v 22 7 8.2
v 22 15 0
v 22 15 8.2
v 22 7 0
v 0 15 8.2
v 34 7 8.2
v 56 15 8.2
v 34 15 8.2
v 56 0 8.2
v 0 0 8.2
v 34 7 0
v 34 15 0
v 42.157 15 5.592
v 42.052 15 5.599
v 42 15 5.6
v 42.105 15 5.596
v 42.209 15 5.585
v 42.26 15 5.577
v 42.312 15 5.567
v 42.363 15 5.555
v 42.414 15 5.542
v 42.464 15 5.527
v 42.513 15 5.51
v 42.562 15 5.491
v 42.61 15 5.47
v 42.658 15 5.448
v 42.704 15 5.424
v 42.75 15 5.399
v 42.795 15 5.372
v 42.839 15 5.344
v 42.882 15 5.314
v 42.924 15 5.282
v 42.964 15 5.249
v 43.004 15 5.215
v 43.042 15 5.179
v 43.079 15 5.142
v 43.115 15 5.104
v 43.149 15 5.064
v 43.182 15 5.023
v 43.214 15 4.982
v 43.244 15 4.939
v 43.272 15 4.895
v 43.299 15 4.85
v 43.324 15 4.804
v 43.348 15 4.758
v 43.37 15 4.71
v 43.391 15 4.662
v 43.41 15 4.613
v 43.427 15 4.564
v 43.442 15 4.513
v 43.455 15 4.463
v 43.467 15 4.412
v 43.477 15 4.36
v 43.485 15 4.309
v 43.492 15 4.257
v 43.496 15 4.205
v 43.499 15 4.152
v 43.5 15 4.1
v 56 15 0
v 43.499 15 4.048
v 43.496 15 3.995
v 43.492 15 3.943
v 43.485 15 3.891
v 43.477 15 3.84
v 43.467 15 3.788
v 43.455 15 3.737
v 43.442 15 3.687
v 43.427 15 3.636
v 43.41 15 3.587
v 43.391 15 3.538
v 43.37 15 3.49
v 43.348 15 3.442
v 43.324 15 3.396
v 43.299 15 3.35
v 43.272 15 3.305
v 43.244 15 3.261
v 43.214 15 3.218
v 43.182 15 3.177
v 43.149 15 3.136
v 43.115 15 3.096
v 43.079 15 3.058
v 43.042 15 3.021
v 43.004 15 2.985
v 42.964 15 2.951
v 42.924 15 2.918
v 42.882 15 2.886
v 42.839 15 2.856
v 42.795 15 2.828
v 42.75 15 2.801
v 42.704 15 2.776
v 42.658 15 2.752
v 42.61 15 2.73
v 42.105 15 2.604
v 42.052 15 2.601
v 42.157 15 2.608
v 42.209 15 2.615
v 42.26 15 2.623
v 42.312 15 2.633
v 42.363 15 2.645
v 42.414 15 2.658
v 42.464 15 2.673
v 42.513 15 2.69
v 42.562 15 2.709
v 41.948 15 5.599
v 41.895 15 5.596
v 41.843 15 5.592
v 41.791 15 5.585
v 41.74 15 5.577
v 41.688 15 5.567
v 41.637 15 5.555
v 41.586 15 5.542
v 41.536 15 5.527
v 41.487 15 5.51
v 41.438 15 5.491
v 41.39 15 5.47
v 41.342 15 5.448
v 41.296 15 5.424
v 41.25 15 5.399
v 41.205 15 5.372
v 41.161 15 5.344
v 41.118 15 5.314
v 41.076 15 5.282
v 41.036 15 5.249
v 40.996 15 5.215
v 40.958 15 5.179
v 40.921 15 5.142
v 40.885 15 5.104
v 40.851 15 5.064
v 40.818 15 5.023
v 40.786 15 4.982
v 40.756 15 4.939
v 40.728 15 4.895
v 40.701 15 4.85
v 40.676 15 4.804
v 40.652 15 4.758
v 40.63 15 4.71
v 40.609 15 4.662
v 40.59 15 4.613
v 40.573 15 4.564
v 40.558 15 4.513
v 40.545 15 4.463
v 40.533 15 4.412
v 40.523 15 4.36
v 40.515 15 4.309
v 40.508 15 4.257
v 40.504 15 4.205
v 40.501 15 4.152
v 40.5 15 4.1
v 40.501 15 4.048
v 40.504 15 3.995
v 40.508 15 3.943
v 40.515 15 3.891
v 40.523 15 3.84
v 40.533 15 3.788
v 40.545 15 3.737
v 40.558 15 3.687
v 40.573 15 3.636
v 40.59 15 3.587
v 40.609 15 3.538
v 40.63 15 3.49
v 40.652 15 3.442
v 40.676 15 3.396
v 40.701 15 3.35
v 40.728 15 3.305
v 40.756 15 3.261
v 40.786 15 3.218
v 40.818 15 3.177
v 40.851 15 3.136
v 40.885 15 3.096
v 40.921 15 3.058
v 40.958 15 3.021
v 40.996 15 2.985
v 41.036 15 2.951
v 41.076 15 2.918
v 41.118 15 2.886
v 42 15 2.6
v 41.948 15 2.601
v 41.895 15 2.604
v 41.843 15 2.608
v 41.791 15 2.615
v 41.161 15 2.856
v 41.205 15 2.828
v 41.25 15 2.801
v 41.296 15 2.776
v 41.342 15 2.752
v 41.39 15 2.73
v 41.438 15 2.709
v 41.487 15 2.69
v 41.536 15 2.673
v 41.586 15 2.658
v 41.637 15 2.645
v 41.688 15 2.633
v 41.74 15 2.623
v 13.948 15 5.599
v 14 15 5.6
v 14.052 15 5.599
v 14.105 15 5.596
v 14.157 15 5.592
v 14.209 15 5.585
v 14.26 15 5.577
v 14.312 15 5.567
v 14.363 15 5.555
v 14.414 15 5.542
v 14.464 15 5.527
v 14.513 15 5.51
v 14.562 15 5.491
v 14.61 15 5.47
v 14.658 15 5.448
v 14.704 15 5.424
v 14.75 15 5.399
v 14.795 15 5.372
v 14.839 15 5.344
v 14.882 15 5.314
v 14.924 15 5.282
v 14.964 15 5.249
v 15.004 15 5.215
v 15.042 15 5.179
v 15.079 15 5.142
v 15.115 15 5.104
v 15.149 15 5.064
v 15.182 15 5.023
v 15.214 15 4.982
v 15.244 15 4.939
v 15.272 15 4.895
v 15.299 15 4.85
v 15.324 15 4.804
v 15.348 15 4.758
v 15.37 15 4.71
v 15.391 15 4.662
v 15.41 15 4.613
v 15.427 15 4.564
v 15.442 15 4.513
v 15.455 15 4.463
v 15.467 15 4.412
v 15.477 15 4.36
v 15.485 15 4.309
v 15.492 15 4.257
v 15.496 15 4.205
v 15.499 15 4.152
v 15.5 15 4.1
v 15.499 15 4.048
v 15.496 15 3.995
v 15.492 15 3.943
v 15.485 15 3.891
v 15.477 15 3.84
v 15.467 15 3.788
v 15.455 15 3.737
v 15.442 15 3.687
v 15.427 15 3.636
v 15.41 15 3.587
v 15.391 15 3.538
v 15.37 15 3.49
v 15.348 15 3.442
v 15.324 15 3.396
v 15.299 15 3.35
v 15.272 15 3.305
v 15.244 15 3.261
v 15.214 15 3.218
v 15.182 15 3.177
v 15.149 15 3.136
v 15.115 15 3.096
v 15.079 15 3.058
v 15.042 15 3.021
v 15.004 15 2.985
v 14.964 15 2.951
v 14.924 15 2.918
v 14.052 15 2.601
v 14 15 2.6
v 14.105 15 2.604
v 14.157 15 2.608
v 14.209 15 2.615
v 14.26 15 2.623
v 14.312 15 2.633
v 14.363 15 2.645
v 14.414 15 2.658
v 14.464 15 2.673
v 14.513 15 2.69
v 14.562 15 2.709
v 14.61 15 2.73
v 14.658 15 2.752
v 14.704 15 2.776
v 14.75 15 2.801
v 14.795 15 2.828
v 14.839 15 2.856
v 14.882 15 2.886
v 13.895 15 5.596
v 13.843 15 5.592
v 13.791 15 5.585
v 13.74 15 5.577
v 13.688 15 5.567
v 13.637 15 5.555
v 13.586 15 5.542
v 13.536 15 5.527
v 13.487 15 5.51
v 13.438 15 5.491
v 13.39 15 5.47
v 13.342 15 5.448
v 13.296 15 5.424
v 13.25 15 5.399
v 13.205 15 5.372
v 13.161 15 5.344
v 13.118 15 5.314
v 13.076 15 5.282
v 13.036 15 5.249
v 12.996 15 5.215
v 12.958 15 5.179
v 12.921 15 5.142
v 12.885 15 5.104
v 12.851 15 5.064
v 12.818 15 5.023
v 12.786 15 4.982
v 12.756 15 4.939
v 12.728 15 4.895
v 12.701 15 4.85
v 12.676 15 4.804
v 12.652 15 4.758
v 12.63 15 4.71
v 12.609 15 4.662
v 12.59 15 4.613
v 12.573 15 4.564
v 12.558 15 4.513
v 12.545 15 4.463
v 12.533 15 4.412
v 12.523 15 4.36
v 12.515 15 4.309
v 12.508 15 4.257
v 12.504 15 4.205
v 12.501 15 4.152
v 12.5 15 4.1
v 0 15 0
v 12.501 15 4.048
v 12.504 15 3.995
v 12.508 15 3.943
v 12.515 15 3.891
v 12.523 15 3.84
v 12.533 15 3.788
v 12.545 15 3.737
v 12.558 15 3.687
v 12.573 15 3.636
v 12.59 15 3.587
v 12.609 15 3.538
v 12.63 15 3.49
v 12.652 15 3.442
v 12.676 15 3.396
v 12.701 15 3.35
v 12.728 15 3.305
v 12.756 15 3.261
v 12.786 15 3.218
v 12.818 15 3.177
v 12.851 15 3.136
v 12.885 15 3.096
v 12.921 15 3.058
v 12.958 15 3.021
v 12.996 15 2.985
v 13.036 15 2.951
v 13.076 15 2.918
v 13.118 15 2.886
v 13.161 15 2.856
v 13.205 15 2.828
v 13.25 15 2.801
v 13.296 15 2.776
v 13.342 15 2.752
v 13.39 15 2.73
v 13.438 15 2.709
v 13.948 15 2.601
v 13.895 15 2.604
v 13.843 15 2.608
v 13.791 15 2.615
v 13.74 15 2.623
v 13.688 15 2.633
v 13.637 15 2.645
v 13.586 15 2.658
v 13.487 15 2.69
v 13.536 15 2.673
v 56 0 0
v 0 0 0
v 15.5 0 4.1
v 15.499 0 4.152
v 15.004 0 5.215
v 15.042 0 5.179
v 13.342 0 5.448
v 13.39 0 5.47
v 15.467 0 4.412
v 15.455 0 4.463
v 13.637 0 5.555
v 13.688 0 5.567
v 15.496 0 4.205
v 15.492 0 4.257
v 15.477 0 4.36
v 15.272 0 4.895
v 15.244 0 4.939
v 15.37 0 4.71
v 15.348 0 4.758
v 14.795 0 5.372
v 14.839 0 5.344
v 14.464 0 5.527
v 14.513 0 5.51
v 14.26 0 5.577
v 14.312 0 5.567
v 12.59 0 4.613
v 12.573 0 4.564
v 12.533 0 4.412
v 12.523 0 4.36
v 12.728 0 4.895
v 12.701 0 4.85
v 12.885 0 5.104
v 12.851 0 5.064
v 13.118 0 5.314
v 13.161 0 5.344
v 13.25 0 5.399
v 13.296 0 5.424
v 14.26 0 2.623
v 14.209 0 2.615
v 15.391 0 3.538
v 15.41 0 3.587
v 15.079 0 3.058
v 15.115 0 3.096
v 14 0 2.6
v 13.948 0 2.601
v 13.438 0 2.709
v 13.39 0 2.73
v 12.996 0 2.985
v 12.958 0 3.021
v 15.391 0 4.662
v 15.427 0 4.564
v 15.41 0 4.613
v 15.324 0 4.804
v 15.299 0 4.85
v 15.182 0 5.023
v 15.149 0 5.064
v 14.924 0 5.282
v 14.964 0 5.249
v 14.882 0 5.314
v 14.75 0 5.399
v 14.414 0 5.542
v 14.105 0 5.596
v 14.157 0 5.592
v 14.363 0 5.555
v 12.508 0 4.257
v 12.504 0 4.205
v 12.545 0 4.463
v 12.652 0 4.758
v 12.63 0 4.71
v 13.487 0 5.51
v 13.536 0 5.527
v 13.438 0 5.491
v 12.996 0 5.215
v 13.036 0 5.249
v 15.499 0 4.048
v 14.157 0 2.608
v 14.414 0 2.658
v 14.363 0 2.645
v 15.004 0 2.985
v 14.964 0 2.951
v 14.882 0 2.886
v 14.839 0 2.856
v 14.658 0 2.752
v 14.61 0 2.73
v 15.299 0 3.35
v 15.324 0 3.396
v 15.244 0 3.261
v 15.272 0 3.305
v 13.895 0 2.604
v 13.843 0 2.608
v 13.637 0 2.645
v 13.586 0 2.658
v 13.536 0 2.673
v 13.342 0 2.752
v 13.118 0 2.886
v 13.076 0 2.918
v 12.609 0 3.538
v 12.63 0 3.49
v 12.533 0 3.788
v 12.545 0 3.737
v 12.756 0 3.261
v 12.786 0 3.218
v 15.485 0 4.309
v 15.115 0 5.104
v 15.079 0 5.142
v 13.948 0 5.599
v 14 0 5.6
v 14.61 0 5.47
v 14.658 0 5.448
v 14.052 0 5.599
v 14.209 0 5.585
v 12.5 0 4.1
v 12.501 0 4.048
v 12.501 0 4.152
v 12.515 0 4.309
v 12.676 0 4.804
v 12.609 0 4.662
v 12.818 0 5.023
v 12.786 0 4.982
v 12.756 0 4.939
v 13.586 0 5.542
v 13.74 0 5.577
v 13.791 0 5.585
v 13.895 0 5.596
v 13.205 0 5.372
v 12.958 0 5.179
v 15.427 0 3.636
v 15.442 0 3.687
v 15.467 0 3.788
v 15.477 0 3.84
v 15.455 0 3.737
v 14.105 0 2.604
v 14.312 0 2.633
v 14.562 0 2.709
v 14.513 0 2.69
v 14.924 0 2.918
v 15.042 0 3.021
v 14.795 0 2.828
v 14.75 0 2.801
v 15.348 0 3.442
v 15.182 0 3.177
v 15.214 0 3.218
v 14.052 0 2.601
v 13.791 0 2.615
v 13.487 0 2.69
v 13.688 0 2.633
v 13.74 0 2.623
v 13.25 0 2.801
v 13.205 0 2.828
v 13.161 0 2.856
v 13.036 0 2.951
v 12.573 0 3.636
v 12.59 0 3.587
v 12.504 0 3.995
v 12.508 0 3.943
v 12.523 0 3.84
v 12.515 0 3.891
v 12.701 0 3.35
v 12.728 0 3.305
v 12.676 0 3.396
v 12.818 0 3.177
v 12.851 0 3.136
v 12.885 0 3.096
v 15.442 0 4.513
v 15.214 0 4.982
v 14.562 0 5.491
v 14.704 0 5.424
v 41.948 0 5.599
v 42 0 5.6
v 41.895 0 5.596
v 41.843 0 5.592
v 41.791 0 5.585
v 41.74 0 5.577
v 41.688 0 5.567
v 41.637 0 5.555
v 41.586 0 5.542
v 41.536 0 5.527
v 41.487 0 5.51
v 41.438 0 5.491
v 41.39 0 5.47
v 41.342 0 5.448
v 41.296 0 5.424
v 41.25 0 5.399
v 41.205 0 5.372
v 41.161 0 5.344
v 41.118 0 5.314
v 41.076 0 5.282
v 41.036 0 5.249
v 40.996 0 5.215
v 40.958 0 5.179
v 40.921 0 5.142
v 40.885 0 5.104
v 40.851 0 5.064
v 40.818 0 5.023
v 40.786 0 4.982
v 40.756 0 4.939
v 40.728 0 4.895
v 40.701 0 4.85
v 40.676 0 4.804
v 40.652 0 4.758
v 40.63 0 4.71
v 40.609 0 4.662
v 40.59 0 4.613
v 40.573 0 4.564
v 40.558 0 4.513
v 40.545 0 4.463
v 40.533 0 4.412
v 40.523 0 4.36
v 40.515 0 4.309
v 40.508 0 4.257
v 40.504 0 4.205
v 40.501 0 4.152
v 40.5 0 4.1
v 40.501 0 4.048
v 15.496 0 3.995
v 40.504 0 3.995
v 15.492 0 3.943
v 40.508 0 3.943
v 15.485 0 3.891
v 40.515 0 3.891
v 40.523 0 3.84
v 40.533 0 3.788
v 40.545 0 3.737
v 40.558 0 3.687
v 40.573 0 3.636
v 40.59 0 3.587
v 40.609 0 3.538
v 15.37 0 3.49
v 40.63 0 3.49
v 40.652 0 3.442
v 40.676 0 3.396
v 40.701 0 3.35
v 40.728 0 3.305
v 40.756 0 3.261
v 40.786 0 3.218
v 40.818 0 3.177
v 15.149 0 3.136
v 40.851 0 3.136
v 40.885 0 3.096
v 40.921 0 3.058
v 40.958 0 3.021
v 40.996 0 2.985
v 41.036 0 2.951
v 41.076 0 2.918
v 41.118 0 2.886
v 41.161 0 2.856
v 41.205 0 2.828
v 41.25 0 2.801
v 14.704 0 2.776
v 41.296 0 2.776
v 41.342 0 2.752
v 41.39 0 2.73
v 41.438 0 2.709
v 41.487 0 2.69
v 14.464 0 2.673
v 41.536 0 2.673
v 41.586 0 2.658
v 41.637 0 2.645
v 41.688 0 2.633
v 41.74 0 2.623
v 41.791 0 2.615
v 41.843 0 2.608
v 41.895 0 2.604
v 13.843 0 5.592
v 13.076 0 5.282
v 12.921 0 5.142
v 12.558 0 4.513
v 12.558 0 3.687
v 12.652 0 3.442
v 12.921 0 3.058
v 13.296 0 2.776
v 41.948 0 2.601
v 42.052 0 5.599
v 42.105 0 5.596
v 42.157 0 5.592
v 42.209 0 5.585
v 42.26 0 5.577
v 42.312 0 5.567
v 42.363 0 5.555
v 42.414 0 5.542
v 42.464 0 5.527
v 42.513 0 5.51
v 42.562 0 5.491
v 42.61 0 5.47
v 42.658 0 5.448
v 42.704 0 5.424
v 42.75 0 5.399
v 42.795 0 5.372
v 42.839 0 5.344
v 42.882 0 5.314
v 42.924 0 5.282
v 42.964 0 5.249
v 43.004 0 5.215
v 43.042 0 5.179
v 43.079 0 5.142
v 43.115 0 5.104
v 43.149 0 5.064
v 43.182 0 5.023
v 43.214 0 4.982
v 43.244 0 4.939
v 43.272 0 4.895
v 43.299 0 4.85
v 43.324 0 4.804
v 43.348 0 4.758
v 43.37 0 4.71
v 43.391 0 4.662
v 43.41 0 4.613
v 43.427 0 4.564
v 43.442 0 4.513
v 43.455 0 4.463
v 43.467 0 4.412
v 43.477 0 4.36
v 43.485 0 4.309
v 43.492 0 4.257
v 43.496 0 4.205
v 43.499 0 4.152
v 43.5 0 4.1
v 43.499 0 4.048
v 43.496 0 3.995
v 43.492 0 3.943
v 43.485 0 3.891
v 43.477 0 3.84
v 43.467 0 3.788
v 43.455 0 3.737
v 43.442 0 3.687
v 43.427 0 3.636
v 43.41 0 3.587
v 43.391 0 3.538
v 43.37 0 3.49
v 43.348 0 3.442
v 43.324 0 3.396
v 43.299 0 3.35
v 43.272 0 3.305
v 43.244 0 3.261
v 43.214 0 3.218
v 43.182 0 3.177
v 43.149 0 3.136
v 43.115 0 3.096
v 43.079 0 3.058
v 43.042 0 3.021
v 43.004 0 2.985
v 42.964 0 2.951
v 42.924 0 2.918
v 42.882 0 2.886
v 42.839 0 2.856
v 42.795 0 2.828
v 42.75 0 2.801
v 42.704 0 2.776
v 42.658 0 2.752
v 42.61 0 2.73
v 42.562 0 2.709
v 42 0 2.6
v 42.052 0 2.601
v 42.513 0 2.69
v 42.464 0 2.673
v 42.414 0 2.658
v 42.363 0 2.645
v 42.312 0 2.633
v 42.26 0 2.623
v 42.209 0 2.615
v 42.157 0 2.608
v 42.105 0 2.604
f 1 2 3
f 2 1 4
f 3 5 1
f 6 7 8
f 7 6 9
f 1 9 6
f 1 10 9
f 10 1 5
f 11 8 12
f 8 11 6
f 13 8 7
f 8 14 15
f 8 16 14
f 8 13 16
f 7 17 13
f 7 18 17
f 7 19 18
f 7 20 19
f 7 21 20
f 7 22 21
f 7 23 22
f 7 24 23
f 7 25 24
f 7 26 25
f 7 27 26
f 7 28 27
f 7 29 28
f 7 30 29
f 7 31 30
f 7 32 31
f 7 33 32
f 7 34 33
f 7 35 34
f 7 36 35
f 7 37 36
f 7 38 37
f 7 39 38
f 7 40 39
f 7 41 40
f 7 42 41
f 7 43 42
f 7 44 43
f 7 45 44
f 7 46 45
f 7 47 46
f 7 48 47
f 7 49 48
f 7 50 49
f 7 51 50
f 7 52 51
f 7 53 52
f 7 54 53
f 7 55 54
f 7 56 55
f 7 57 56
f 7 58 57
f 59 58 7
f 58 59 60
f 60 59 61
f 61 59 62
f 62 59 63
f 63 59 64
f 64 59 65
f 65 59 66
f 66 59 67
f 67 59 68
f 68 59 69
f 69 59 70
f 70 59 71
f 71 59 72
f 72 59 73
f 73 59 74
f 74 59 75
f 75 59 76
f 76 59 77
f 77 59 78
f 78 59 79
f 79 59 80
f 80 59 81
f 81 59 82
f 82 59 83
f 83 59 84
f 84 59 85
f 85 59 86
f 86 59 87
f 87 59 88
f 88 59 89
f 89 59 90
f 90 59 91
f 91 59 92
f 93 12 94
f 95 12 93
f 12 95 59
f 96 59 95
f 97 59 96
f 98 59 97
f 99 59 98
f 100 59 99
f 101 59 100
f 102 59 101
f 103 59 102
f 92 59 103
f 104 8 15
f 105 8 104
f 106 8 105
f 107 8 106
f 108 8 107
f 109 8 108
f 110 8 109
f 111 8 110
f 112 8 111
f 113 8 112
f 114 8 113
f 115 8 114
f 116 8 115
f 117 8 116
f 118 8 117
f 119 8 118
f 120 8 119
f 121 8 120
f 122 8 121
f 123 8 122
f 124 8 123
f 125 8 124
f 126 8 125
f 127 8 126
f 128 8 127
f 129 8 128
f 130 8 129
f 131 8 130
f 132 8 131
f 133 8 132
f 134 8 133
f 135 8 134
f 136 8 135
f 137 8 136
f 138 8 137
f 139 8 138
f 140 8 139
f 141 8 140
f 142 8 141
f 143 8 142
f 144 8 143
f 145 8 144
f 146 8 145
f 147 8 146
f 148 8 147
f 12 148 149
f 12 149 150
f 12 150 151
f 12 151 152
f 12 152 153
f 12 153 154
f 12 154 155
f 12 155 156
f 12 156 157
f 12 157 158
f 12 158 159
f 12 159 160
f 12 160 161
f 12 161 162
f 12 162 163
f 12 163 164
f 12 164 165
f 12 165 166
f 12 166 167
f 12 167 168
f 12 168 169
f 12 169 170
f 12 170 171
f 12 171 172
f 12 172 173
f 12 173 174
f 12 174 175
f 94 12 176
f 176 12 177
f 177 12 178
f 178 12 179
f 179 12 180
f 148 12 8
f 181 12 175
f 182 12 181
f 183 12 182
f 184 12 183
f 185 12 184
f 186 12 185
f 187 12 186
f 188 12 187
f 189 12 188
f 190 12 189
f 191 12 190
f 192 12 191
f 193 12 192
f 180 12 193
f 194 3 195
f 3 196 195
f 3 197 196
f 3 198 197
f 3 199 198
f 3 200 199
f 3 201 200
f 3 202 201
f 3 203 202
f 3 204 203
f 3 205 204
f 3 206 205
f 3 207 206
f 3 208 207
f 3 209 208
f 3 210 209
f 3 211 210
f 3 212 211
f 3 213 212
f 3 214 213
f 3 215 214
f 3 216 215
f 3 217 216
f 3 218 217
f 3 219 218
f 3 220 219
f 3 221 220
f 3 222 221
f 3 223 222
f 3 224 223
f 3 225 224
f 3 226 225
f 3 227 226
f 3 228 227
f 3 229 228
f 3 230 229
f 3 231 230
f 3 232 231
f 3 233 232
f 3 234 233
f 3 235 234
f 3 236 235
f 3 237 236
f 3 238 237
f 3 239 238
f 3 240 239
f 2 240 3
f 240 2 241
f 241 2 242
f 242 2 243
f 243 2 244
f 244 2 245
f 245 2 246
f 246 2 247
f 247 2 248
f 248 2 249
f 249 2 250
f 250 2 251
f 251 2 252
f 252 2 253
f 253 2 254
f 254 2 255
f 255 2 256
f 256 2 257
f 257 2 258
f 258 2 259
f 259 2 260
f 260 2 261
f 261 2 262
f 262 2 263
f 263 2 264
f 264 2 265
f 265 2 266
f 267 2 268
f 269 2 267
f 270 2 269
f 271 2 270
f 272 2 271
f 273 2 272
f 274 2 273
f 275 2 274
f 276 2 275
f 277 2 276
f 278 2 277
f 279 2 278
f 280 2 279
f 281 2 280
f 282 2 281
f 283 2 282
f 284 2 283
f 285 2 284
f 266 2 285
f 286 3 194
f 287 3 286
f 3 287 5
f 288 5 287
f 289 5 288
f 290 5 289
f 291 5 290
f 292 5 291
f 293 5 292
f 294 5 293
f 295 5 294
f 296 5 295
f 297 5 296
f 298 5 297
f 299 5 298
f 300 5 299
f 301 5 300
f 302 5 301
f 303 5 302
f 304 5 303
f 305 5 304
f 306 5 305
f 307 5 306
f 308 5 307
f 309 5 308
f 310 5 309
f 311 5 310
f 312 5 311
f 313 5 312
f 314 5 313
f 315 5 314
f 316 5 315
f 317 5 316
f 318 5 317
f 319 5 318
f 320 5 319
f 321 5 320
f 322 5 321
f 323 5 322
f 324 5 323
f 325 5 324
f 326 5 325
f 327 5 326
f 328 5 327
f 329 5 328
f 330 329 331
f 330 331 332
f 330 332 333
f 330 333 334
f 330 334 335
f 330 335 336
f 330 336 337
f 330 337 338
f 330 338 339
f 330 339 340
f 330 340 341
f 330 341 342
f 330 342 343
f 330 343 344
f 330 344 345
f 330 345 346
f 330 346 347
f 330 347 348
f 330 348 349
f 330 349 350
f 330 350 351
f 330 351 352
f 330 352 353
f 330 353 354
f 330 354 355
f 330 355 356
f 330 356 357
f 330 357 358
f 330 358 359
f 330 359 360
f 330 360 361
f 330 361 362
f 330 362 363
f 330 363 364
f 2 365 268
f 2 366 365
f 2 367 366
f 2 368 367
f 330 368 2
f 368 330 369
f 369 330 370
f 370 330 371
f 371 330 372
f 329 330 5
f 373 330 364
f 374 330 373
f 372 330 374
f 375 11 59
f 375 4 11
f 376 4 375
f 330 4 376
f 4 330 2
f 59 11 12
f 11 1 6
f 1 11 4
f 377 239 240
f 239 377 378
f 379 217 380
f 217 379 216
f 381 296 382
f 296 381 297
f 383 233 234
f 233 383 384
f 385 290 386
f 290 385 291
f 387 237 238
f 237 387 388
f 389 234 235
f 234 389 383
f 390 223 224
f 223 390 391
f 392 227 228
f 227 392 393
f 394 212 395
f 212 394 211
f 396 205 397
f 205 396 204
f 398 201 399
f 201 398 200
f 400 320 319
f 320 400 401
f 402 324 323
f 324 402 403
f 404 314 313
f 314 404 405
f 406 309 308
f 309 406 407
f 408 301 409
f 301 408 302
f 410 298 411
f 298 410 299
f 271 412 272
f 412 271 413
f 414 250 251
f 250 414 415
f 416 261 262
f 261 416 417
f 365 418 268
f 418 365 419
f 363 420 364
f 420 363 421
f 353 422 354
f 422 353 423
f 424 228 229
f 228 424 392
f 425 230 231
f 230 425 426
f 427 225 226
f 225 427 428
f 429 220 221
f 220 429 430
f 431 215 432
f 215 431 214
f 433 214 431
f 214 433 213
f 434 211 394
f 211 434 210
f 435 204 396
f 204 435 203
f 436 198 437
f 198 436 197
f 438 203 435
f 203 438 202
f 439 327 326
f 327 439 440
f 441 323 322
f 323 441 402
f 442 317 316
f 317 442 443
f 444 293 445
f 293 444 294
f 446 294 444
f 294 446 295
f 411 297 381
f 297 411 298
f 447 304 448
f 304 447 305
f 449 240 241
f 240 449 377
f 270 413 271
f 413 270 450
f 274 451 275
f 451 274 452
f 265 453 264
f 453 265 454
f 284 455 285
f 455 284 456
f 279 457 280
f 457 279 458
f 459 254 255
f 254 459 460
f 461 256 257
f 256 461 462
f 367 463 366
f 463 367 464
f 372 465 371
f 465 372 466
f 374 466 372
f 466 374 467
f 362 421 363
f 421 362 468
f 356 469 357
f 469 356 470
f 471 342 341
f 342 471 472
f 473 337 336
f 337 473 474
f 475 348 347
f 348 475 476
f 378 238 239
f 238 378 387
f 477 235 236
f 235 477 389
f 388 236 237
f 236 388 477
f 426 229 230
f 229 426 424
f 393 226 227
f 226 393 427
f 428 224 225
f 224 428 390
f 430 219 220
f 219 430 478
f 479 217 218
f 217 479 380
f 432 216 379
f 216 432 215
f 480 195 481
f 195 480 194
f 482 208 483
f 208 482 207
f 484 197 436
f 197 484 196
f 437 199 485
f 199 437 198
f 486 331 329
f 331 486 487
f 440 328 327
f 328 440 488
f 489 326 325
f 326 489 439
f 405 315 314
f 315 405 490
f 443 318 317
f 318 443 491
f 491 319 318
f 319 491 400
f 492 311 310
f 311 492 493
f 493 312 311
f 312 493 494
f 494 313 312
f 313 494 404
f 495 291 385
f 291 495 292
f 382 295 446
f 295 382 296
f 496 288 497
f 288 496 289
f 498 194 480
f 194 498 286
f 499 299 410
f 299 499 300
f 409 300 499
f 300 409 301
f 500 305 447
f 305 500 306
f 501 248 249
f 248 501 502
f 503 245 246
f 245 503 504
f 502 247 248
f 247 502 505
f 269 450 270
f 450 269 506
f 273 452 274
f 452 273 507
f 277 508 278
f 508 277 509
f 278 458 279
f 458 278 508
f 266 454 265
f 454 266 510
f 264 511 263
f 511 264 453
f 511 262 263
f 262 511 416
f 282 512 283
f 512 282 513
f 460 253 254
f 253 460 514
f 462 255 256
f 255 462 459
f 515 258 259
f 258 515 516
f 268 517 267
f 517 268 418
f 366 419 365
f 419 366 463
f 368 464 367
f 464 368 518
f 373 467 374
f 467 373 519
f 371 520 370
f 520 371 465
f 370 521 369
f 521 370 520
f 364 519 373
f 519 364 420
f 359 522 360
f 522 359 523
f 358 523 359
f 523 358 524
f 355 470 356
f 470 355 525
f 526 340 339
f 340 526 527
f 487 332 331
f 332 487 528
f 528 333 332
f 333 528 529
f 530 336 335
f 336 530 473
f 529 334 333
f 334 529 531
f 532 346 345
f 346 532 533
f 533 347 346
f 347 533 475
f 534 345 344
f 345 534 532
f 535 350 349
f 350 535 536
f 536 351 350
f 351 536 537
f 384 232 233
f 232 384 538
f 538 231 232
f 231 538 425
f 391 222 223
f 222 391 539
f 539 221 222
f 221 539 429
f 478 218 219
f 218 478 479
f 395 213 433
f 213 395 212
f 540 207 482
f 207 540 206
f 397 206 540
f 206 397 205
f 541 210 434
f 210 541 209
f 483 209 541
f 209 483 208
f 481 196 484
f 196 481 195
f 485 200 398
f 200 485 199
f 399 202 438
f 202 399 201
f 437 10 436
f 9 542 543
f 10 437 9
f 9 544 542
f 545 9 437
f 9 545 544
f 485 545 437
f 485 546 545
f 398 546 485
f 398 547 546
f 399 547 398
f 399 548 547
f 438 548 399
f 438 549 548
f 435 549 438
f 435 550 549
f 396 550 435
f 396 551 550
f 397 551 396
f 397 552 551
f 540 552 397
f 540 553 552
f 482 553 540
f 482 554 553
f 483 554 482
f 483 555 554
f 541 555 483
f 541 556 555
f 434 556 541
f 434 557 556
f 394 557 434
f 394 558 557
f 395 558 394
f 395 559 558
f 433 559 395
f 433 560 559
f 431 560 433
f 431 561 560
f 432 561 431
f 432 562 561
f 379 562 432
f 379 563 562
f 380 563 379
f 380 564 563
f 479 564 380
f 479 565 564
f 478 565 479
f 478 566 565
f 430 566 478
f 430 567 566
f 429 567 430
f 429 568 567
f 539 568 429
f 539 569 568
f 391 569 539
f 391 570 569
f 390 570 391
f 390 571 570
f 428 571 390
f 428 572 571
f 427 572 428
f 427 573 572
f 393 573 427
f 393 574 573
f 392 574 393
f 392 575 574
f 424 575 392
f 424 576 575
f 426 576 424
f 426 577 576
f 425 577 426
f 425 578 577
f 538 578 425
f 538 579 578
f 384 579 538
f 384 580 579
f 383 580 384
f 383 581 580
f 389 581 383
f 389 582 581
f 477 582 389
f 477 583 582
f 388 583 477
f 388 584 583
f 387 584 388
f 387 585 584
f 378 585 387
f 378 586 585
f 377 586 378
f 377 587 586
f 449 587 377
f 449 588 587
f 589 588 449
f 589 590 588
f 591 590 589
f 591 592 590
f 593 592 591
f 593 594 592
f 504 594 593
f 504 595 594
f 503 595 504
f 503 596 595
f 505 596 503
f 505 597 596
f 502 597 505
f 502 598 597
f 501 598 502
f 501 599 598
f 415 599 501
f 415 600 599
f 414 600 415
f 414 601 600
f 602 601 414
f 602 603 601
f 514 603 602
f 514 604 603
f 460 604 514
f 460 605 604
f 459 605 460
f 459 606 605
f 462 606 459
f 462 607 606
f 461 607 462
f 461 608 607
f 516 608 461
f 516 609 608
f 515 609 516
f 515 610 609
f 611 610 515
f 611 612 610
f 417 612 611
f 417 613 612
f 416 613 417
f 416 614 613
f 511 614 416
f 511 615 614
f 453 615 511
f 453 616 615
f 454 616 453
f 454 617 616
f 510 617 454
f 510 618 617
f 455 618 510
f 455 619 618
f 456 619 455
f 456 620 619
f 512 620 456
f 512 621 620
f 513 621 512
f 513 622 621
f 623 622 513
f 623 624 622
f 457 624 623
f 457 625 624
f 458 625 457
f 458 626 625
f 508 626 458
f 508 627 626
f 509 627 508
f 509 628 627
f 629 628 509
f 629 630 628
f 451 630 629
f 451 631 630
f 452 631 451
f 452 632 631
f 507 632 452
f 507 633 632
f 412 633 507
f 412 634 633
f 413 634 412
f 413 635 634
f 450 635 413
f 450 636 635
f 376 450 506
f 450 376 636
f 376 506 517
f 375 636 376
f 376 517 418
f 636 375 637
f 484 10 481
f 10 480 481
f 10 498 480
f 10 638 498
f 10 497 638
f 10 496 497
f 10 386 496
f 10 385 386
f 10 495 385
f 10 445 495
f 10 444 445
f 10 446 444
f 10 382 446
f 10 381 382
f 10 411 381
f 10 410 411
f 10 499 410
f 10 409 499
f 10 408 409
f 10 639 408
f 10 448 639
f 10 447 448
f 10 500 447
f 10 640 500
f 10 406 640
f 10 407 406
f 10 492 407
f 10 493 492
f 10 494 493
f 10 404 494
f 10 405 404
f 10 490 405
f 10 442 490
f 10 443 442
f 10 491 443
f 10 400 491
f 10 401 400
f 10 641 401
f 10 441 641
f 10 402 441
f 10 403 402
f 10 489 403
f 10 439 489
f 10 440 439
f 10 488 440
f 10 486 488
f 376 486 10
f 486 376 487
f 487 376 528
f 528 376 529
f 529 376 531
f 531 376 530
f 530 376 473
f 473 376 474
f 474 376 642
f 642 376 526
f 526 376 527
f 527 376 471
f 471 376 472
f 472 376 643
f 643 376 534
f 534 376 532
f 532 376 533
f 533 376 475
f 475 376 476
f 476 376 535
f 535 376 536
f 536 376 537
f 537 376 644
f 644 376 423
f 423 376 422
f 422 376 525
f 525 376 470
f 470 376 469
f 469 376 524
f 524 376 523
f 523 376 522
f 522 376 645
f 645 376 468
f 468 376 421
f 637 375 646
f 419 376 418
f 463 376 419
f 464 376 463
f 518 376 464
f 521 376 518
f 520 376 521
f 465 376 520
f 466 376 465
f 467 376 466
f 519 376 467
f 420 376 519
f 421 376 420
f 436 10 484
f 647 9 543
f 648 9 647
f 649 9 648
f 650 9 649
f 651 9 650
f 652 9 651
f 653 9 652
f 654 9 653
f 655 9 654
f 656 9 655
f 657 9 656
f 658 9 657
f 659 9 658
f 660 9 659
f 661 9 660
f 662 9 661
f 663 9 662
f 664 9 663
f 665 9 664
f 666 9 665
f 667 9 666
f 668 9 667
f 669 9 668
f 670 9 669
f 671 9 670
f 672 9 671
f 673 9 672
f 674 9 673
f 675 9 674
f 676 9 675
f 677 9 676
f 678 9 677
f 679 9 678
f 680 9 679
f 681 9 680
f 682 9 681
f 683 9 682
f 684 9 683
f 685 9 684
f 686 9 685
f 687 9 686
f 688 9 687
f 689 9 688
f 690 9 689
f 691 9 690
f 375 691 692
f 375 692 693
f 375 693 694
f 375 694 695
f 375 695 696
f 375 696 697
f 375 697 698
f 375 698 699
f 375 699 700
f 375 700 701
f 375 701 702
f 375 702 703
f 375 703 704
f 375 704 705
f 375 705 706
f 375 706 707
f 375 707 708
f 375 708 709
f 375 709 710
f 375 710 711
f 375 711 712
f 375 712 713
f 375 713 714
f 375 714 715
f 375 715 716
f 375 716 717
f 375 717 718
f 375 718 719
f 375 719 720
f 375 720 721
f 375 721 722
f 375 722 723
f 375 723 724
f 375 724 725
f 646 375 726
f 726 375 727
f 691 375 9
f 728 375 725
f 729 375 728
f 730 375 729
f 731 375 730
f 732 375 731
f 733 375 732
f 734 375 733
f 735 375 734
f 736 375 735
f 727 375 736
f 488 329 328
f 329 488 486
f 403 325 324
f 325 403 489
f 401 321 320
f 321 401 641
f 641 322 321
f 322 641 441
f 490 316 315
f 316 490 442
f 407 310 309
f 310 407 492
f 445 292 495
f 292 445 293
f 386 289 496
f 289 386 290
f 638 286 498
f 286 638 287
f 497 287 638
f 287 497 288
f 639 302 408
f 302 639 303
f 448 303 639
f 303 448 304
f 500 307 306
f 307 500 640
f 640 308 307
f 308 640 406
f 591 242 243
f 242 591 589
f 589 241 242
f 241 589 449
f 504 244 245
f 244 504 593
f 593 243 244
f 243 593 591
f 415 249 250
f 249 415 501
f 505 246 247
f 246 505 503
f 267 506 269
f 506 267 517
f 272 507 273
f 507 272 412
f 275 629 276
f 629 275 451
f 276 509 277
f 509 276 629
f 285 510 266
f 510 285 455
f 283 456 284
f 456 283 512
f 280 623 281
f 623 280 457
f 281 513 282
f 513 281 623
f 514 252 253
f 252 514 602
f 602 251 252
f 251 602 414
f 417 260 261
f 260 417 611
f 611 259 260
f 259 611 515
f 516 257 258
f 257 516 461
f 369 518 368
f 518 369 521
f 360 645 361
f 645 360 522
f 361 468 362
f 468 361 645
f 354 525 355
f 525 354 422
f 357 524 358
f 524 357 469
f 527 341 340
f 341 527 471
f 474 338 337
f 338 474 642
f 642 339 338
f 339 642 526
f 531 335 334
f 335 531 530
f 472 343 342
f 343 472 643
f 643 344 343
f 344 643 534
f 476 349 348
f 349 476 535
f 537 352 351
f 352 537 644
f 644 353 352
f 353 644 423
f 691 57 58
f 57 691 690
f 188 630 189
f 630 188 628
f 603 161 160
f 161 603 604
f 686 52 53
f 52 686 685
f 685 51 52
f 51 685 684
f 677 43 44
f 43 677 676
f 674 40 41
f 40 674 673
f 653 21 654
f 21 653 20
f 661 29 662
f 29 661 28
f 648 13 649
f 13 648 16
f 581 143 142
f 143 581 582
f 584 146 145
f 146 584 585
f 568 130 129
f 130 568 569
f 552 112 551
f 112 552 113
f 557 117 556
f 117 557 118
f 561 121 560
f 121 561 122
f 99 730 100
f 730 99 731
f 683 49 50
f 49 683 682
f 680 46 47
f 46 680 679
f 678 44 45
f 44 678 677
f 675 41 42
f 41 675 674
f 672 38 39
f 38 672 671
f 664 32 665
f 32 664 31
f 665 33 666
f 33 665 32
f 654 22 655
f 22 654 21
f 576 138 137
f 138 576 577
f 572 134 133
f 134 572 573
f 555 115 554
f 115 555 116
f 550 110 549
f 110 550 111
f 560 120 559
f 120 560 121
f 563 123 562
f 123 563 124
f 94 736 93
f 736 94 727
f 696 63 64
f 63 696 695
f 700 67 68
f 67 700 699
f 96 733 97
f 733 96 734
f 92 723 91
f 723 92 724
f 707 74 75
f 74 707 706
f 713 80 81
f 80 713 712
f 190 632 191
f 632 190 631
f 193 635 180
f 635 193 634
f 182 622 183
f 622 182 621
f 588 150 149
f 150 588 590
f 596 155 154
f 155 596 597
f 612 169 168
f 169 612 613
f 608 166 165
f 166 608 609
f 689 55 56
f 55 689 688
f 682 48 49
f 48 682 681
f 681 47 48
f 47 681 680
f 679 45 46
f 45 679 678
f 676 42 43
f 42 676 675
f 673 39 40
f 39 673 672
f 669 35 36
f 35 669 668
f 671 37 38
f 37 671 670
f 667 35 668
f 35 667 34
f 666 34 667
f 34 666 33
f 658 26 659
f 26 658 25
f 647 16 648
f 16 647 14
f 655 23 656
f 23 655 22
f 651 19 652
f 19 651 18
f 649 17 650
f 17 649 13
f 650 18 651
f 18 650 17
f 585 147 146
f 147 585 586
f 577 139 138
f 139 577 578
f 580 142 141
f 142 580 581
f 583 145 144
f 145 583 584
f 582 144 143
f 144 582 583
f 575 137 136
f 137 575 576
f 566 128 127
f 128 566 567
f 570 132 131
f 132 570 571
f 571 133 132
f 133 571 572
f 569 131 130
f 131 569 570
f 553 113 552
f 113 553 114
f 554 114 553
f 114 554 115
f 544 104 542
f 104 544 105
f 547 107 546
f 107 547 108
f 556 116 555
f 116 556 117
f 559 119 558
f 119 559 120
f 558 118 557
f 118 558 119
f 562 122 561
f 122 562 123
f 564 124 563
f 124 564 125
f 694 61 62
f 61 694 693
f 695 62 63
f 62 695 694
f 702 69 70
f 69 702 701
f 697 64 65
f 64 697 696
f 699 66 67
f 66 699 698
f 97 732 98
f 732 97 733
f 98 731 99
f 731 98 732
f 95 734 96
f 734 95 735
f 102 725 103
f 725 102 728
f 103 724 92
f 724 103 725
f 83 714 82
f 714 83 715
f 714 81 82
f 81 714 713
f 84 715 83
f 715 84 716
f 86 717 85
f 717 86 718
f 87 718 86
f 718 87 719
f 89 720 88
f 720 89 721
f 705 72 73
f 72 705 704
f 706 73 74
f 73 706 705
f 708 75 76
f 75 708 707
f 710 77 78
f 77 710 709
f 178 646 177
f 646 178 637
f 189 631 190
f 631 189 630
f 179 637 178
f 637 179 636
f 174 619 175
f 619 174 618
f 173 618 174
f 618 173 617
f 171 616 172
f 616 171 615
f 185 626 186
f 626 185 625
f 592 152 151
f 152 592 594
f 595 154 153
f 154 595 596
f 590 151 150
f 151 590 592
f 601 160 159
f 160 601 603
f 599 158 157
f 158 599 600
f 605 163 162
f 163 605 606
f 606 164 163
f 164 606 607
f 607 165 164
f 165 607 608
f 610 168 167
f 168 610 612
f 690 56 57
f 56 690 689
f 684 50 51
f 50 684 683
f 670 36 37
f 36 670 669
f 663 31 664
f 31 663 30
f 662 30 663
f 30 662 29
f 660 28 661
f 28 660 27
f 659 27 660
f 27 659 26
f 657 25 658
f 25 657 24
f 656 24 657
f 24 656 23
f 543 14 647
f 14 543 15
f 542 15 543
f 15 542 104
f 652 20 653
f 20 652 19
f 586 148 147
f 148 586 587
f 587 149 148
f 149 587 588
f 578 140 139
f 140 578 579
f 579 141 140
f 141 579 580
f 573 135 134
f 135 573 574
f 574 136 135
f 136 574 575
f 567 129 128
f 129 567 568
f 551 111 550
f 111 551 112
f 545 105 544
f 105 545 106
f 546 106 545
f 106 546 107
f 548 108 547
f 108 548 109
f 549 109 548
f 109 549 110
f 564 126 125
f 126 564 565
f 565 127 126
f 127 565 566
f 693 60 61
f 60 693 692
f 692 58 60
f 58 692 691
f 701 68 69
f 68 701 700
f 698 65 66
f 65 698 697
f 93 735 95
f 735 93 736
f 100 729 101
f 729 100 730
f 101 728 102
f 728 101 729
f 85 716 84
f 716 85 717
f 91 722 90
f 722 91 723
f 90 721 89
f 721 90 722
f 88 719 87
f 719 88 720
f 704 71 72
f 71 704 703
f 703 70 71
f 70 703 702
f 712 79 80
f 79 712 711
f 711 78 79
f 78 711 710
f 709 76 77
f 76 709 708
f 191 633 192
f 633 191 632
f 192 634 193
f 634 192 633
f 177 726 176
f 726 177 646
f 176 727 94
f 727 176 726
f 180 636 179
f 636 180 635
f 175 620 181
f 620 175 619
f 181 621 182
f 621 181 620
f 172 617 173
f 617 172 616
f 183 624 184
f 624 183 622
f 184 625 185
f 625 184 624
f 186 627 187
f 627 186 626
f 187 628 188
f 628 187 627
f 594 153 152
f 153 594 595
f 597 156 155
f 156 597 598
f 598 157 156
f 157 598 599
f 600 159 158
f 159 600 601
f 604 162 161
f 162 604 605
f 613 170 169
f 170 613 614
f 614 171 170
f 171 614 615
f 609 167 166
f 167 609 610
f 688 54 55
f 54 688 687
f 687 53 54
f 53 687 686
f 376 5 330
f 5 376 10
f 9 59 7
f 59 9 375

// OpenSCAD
clampwidth = 56;
clampdepth = 15;
acrylthick = 8.2;
notchwidth = 12;
notchdepth = 8;
screwofs = 14;
screwrad = 1.5;
res = 180;

module clamp() {
       difference() {
	       union() {
		       cube([clampwidth, clampdepth, acrylthick]);
	       }
	       union() {
		       translate([(clampwidth - notchwidth) / 2, clampdepth - notchdepth, 0]) cube([notchwidth, notchdepth, acrylthick]);
		       translate([clampwidth / 2 - screwofs, clampdepth, acrylthick / 2]) rotate([90, 0, 0]) cylinder(h = clampdepth, r = screwrad, $fn = res);
		       translate([clampwidth / 2 + screwofs, clampdepth, acrylthick / 2]) rotate([90, 0, 0]) cylinder(h = clampdepth, r = screwrad, $fn = res);
		    }
       }
}

clamp();
